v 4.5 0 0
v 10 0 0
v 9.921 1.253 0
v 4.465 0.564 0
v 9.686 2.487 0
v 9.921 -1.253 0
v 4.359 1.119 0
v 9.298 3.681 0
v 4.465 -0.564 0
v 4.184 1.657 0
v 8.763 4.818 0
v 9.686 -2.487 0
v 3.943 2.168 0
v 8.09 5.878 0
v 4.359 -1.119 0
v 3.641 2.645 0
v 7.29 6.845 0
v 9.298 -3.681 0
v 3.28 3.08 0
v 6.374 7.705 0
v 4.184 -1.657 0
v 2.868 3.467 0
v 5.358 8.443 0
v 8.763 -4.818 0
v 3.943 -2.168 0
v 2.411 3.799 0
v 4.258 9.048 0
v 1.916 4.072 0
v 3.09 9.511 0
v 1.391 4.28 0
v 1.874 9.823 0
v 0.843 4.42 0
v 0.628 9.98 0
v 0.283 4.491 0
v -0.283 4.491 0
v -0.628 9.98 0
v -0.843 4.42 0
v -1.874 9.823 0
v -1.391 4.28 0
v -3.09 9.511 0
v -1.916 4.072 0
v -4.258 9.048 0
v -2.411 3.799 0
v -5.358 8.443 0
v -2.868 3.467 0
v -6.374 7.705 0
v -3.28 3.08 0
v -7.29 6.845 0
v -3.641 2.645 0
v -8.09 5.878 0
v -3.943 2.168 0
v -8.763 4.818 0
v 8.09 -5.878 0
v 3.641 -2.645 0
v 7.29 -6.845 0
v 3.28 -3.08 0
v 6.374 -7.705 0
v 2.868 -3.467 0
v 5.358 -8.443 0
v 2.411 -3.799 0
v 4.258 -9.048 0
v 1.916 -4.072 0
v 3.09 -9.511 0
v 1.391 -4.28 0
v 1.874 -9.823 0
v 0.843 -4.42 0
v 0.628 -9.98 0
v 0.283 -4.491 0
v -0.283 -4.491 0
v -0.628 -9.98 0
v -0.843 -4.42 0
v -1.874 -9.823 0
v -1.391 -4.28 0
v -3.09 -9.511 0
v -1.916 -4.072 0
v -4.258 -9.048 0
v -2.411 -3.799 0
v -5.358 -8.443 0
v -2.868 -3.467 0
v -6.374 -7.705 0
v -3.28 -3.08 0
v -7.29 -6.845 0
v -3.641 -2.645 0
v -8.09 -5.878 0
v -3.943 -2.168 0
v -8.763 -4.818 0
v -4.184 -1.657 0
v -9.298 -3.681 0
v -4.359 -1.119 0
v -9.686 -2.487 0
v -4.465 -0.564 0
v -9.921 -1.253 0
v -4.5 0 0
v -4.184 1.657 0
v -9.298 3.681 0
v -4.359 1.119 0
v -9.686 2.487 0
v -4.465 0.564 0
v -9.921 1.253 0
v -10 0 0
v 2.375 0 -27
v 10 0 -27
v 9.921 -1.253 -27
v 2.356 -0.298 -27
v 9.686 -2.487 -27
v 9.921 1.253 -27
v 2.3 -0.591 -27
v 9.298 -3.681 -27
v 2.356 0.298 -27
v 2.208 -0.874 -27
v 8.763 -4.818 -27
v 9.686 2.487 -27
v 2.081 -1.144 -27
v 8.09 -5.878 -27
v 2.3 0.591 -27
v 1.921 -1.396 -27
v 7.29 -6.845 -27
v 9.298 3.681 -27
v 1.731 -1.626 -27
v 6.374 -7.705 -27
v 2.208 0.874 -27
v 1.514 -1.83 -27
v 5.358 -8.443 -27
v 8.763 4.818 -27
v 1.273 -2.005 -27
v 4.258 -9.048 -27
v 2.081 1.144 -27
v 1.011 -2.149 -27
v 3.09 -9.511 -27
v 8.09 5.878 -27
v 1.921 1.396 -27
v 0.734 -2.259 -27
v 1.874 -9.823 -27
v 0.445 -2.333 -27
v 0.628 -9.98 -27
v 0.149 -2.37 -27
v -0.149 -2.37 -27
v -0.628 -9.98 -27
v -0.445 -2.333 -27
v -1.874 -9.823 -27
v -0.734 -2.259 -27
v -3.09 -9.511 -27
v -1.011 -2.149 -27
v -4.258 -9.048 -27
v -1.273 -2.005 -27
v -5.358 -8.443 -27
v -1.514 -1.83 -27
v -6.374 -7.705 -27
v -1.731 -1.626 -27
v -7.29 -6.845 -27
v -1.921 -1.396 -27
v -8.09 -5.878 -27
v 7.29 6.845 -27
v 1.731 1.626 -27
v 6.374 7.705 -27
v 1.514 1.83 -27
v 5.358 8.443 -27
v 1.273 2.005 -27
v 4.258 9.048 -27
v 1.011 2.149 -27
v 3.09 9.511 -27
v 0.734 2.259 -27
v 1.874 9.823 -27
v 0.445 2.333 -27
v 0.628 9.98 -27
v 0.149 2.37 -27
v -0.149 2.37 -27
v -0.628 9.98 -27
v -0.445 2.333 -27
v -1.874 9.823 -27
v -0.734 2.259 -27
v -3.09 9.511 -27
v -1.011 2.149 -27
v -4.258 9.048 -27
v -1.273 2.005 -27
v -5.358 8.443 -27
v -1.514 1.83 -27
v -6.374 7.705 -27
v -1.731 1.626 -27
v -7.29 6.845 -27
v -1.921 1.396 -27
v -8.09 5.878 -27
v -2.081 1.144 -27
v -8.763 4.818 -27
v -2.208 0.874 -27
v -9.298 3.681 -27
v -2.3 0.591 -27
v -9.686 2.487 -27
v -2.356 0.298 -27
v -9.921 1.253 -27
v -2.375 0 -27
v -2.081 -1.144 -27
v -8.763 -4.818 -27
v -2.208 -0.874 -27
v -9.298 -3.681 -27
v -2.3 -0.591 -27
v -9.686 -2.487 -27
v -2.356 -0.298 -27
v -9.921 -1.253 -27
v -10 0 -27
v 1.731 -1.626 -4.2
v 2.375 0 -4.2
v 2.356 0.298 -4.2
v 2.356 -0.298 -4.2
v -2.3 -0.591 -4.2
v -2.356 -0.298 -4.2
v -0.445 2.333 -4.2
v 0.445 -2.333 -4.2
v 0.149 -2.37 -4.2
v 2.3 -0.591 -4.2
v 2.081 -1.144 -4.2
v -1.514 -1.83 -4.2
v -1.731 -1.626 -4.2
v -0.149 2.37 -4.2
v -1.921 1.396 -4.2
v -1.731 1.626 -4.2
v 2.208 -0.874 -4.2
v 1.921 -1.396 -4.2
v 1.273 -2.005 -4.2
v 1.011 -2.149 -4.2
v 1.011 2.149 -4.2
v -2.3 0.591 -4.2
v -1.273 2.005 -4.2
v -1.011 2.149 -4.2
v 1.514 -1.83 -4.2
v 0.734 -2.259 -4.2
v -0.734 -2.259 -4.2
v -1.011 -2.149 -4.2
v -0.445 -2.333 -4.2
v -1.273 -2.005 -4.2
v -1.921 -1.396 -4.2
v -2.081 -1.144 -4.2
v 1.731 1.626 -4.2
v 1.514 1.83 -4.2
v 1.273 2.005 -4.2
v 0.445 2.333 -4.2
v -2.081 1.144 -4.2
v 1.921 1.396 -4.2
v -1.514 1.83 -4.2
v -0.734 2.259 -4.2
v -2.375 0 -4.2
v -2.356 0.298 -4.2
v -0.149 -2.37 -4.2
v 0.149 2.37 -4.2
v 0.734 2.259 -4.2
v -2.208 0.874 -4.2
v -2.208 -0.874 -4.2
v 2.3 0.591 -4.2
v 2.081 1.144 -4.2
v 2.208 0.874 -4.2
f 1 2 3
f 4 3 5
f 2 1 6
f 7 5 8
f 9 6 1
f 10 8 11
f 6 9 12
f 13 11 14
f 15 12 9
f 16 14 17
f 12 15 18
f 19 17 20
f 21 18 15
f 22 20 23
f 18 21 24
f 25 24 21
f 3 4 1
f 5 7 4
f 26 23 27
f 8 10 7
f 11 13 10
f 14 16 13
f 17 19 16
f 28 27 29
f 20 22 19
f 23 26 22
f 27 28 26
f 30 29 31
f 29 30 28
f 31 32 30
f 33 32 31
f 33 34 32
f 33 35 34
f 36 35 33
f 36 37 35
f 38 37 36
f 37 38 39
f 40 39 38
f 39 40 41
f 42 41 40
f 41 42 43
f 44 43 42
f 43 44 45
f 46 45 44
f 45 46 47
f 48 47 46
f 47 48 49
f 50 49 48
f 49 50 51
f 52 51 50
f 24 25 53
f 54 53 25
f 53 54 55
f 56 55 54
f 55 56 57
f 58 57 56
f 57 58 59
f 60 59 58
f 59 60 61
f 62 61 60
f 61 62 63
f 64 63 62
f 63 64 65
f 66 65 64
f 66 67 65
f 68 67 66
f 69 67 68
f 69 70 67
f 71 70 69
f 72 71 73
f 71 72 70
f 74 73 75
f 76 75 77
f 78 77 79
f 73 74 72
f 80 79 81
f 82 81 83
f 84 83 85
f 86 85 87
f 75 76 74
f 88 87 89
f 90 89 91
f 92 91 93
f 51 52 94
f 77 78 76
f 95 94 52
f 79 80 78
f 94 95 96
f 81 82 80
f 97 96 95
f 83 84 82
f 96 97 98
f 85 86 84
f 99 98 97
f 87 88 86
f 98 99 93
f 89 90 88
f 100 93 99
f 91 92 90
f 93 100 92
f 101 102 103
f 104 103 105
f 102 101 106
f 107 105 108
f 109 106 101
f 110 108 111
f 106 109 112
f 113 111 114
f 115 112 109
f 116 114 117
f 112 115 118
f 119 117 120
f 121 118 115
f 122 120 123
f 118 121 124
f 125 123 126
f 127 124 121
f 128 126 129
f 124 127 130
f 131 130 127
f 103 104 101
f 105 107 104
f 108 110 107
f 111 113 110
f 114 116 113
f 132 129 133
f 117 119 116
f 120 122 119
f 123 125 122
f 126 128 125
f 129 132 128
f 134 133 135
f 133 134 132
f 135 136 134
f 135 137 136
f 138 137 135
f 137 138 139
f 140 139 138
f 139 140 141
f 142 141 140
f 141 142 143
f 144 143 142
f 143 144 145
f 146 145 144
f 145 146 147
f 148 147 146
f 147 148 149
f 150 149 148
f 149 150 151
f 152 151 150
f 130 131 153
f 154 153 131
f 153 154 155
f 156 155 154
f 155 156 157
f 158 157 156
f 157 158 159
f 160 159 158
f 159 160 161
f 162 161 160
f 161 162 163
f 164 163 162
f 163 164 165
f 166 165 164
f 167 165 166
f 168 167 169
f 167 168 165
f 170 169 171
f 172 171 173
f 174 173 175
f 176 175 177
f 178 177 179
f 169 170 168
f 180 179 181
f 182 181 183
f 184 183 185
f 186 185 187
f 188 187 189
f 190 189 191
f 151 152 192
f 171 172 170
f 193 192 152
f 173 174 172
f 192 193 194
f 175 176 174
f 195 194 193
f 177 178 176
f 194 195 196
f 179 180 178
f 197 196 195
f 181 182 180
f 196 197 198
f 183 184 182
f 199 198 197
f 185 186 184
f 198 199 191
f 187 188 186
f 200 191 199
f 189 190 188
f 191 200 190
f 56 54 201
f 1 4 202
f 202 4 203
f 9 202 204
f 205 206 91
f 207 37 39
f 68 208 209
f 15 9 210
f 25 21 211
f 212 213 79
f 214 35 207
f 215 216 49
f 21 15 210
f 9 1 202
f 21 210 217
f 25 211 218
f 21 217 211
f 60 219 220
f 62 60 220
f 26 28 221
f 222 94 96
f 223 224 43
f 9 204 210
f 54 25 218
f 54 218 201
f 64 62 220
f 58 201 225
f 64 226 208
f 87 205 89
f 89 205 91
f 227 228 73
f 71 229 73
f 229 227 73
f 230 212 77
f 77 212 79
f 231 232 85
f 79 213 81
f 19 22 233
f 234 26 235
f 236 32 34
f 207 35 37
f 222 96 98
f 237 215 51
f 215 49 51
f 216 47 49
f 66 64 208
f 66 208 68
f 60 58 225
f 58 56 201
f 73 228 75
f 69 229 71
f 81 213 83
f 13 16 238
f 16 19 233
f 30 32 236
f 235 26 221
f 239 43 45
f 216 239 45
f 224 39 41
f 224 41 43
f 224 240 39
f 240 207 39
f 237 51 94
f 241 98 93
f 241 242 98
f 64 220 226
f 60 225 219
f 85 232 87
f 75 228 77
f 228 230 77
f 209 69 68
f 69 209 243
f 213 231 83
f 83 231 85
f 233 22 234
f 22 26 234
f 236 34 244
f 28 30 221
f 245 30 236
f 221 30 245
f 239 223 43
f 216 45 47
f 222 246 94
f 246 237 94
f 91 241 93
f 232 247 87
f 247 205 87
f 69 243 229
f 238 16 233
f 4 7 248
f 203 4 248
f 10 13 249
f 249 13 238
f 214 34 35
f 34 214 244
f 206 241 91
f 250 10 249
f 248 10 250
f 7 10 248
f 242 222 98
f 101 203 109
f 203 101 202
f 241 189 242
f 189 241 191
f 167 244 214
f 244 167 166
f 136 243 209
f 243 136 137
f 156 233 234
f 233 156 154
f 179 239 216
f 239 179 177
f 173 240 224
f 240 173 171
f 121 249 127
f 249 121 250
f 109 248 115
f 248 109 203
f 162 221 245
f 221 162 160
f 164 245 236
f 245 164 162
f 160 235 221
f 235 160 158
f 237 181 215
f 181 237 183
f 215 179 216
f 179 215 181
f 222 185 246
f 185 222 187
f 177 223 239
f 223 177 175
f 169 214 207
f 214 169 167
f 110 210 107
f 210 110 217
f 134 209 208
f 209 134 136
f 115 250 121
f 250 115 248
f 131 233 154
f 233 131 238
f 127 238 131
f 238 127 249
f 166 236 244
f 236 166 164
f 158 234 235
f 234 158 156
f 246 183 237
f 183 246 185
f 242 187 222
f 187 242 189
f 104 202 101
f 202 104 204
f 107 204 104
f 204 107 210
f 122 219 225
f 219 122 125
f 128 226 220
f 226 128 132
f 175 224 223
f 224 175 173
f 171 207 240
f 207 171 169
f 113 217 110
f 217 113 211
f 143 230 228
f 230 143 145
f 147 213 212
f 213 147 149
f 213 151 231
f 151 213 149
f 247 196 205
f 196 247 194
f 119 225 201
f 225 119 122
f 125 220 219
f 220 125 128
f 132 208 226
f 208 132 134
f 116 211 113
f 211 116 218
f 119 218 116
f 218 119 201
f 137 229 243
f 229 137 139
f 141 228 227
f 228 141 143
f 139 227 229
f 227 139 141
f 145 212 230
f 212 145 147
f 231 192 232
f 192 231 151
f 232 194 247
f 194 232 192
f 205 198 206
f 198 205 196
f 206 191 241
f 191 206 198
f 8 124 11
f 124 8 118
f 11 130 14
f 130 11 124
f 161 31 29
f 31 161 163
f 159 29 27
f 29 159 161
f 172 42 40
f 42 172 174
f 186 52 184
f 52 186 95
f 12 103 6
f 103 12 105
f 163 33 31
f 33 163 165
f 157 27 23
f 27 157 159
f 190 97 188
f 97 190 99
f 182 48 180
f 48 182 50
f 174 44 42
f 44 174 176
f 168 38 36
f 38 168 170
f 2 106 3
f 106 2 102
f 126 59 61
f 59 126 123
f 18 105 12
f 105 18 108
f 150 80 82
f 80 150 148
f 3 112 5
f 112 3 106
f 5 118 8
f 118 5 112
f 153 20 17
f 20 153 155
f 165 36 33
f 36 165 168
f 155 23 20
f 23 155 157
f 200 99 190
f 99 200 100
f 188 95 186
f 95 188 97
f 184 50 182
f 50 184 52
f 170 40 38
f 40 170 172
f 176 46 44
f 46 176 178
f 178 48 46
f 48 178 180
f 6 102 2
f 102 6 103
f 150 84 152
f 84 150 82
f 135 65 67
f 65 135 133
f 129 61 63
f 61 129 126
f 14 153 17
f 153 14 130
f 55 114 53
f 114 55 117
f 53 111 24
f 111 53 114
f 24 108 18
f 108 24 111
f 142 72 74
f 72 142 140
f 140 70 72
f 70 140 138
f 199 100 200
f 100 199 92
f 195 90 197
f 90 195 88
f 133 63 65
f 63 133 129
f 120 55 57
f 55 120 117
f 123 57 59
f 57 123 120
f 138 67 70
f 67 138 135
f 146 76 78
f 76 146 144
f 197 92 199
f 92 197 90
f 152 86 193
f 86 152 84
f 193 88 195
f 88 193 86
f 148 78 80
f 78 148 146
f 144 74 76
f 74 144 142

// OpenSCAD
$fn = 50;


difference() {
	union() {
		translate(v = [0, 0, -27.0000000000]) {
			cylinder(h = 27, r = 10.0000000000);
		}
		cylinder(h = 0, r = 13.0000000000);
	}
	union() {
		translate(v = [0, 0, 0]) {
			rotate(a = [0, 0, 0]) {
				difference() {
					union() {
						#translate(v = [0, 0, -27.0000000000]) {
							cylinder(h = 27, r = 2.2500000000);
						}
						#translate(v = [0, 0, -4.2000000000]) {
							cylinder(h = 4.2000000000, r = 10.0000000000, r1 = 2.3750000000, r2 = 4.5000000000);
						}
						#translate(v = [0, 0, -27.0000000000]) {
							cylinder(h = 27, r = 2.3750000000);
						}
						#translate(v = [0, 0, -27.0000000000]) {
							cylinder(h = 27, r = 2.2500000000);
						}
					}
					union();
				}
			}
		}
	}
}
